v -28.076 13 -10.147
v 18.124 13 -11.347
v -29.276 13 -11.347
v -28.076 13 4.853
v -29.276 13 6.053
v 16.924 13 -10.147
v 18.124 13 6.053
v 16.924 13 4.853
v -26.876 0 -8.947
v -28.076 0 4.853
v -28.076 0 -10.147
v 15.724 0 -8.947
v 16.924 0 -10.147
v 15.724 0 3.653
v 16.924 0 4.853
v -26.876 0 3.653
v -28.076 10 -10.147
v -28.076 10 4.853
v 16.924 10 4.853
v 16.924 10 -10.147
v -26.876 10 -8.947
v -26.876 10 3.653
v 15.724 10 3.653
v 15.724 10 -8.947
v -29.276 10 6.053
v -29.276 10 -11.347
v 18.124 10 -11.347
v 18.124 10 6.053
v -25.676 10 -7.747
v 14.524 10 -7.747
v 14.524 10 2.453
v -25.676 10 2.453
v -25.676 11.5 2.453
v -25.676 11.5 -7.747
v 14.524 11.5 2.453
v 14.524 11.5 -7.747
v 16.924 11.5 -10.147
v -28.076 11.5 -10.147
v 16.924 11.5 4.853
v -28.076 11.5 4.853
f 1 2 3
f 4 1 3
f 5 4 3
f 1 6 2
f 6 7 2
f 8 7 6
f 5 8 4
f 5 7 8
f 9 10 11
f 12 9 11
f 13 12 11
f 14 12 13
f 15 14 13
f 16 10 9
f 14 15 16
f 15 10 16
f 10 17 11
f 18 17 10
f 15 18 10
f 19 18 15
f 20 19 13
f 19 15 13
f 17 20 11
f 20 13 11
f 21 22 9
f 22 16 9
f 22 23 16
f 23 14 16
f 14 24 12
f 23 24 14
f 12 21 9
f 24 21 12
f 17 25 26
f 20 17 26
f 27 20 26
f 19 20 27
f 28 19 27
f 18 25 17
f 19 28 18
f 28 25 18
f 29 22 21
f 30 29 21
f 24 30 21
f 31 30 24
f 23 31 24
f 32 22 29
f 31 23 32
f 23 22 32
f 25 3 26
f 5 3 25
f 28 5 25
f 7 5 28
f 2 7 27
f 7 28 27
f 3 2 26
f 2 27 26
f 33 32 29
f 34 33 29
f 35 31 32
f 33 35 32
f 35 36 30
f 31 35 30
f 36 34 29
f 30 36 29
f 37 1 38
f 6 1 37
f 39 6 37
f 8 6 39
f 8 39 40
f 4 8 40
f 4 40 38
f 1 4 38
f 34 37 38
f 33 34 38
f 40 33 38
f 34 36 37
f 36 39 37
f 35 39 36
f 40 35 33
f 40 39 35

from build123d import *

# Parameters (mm, degrees)
SKETCH2_W           = 45
SKETCH2_H           = 15
SKETCH2_W_2         = 42.6
SKETCH2_H_2         = 12.6
EXTRUDE_THIN1_DEPTH = 10
SKETCH5_W           = 47.4
SKETCH5_H           = 17.4
SKETCH5_W_2         = 40.2
SKETCH5_H_2         = 10.2
EXTRUDE_THIN3_DEPTH = 3
SKETCH6_W           = 45
SKETCH6_H           = 15
CUT_EXTRUDE2_DEPTH  = 1.5


with BuildPart() as part:
    # Sketch2 → Extrude-Thin1 (new body)
    with BuildSketch(Plane(origin=(0, 0, 0), x_dir=(1, 0, 0), z_dir=(0, 1, 0))):
        with Locations((-5.576315789, 2.647368421)):
            Rectangle(SKETCH2_W, SKETCH2_H)
        with Locations((-5.576315789, 2.647368421)):
            Rectangle(SKETCH2_W_2, SKETCH2_H_2, mode=Mode.SUBTRACT)
    extrude(amount=EXTRUDE_THIN1_DEPTH)

    # Sketch5 → Extrude-Thin3 (add)
    with BuildSketch(Plane(origin=(0, 10, 0), x_dir=(1, 0, 0), z_dir=(0, 1, 0))):
        with Locations((-5.576315789, 2.647368421)):
            Rectangle(SKETCH5_W, SKETCH5_H)
        with Locations((-5.576315789, 2.647368421)):
            Rectangle(SKETCH5_W_2, SKETCH5_H_2, mode=Mode.SUBTRACT)
    extrude(amount=EXTRUDE_THIN3_DEPTH)

    # Sketch6 → Cut-Extrude2 (cut)
    with BuildSketch(Plane(origin=(0, 13, 0), x_dir=(1, 0, 0), z_dir=(0, 1, 0))):
        with Locations((-5.576315789, 2.647368421)):
            Rectangle(SKETCH6_W, SKETCH6_H)
    extrude(amount=-CUT_EXTRUDE2_DEPTH, mode=Mode.SUBTRACT)


solid = part.part
